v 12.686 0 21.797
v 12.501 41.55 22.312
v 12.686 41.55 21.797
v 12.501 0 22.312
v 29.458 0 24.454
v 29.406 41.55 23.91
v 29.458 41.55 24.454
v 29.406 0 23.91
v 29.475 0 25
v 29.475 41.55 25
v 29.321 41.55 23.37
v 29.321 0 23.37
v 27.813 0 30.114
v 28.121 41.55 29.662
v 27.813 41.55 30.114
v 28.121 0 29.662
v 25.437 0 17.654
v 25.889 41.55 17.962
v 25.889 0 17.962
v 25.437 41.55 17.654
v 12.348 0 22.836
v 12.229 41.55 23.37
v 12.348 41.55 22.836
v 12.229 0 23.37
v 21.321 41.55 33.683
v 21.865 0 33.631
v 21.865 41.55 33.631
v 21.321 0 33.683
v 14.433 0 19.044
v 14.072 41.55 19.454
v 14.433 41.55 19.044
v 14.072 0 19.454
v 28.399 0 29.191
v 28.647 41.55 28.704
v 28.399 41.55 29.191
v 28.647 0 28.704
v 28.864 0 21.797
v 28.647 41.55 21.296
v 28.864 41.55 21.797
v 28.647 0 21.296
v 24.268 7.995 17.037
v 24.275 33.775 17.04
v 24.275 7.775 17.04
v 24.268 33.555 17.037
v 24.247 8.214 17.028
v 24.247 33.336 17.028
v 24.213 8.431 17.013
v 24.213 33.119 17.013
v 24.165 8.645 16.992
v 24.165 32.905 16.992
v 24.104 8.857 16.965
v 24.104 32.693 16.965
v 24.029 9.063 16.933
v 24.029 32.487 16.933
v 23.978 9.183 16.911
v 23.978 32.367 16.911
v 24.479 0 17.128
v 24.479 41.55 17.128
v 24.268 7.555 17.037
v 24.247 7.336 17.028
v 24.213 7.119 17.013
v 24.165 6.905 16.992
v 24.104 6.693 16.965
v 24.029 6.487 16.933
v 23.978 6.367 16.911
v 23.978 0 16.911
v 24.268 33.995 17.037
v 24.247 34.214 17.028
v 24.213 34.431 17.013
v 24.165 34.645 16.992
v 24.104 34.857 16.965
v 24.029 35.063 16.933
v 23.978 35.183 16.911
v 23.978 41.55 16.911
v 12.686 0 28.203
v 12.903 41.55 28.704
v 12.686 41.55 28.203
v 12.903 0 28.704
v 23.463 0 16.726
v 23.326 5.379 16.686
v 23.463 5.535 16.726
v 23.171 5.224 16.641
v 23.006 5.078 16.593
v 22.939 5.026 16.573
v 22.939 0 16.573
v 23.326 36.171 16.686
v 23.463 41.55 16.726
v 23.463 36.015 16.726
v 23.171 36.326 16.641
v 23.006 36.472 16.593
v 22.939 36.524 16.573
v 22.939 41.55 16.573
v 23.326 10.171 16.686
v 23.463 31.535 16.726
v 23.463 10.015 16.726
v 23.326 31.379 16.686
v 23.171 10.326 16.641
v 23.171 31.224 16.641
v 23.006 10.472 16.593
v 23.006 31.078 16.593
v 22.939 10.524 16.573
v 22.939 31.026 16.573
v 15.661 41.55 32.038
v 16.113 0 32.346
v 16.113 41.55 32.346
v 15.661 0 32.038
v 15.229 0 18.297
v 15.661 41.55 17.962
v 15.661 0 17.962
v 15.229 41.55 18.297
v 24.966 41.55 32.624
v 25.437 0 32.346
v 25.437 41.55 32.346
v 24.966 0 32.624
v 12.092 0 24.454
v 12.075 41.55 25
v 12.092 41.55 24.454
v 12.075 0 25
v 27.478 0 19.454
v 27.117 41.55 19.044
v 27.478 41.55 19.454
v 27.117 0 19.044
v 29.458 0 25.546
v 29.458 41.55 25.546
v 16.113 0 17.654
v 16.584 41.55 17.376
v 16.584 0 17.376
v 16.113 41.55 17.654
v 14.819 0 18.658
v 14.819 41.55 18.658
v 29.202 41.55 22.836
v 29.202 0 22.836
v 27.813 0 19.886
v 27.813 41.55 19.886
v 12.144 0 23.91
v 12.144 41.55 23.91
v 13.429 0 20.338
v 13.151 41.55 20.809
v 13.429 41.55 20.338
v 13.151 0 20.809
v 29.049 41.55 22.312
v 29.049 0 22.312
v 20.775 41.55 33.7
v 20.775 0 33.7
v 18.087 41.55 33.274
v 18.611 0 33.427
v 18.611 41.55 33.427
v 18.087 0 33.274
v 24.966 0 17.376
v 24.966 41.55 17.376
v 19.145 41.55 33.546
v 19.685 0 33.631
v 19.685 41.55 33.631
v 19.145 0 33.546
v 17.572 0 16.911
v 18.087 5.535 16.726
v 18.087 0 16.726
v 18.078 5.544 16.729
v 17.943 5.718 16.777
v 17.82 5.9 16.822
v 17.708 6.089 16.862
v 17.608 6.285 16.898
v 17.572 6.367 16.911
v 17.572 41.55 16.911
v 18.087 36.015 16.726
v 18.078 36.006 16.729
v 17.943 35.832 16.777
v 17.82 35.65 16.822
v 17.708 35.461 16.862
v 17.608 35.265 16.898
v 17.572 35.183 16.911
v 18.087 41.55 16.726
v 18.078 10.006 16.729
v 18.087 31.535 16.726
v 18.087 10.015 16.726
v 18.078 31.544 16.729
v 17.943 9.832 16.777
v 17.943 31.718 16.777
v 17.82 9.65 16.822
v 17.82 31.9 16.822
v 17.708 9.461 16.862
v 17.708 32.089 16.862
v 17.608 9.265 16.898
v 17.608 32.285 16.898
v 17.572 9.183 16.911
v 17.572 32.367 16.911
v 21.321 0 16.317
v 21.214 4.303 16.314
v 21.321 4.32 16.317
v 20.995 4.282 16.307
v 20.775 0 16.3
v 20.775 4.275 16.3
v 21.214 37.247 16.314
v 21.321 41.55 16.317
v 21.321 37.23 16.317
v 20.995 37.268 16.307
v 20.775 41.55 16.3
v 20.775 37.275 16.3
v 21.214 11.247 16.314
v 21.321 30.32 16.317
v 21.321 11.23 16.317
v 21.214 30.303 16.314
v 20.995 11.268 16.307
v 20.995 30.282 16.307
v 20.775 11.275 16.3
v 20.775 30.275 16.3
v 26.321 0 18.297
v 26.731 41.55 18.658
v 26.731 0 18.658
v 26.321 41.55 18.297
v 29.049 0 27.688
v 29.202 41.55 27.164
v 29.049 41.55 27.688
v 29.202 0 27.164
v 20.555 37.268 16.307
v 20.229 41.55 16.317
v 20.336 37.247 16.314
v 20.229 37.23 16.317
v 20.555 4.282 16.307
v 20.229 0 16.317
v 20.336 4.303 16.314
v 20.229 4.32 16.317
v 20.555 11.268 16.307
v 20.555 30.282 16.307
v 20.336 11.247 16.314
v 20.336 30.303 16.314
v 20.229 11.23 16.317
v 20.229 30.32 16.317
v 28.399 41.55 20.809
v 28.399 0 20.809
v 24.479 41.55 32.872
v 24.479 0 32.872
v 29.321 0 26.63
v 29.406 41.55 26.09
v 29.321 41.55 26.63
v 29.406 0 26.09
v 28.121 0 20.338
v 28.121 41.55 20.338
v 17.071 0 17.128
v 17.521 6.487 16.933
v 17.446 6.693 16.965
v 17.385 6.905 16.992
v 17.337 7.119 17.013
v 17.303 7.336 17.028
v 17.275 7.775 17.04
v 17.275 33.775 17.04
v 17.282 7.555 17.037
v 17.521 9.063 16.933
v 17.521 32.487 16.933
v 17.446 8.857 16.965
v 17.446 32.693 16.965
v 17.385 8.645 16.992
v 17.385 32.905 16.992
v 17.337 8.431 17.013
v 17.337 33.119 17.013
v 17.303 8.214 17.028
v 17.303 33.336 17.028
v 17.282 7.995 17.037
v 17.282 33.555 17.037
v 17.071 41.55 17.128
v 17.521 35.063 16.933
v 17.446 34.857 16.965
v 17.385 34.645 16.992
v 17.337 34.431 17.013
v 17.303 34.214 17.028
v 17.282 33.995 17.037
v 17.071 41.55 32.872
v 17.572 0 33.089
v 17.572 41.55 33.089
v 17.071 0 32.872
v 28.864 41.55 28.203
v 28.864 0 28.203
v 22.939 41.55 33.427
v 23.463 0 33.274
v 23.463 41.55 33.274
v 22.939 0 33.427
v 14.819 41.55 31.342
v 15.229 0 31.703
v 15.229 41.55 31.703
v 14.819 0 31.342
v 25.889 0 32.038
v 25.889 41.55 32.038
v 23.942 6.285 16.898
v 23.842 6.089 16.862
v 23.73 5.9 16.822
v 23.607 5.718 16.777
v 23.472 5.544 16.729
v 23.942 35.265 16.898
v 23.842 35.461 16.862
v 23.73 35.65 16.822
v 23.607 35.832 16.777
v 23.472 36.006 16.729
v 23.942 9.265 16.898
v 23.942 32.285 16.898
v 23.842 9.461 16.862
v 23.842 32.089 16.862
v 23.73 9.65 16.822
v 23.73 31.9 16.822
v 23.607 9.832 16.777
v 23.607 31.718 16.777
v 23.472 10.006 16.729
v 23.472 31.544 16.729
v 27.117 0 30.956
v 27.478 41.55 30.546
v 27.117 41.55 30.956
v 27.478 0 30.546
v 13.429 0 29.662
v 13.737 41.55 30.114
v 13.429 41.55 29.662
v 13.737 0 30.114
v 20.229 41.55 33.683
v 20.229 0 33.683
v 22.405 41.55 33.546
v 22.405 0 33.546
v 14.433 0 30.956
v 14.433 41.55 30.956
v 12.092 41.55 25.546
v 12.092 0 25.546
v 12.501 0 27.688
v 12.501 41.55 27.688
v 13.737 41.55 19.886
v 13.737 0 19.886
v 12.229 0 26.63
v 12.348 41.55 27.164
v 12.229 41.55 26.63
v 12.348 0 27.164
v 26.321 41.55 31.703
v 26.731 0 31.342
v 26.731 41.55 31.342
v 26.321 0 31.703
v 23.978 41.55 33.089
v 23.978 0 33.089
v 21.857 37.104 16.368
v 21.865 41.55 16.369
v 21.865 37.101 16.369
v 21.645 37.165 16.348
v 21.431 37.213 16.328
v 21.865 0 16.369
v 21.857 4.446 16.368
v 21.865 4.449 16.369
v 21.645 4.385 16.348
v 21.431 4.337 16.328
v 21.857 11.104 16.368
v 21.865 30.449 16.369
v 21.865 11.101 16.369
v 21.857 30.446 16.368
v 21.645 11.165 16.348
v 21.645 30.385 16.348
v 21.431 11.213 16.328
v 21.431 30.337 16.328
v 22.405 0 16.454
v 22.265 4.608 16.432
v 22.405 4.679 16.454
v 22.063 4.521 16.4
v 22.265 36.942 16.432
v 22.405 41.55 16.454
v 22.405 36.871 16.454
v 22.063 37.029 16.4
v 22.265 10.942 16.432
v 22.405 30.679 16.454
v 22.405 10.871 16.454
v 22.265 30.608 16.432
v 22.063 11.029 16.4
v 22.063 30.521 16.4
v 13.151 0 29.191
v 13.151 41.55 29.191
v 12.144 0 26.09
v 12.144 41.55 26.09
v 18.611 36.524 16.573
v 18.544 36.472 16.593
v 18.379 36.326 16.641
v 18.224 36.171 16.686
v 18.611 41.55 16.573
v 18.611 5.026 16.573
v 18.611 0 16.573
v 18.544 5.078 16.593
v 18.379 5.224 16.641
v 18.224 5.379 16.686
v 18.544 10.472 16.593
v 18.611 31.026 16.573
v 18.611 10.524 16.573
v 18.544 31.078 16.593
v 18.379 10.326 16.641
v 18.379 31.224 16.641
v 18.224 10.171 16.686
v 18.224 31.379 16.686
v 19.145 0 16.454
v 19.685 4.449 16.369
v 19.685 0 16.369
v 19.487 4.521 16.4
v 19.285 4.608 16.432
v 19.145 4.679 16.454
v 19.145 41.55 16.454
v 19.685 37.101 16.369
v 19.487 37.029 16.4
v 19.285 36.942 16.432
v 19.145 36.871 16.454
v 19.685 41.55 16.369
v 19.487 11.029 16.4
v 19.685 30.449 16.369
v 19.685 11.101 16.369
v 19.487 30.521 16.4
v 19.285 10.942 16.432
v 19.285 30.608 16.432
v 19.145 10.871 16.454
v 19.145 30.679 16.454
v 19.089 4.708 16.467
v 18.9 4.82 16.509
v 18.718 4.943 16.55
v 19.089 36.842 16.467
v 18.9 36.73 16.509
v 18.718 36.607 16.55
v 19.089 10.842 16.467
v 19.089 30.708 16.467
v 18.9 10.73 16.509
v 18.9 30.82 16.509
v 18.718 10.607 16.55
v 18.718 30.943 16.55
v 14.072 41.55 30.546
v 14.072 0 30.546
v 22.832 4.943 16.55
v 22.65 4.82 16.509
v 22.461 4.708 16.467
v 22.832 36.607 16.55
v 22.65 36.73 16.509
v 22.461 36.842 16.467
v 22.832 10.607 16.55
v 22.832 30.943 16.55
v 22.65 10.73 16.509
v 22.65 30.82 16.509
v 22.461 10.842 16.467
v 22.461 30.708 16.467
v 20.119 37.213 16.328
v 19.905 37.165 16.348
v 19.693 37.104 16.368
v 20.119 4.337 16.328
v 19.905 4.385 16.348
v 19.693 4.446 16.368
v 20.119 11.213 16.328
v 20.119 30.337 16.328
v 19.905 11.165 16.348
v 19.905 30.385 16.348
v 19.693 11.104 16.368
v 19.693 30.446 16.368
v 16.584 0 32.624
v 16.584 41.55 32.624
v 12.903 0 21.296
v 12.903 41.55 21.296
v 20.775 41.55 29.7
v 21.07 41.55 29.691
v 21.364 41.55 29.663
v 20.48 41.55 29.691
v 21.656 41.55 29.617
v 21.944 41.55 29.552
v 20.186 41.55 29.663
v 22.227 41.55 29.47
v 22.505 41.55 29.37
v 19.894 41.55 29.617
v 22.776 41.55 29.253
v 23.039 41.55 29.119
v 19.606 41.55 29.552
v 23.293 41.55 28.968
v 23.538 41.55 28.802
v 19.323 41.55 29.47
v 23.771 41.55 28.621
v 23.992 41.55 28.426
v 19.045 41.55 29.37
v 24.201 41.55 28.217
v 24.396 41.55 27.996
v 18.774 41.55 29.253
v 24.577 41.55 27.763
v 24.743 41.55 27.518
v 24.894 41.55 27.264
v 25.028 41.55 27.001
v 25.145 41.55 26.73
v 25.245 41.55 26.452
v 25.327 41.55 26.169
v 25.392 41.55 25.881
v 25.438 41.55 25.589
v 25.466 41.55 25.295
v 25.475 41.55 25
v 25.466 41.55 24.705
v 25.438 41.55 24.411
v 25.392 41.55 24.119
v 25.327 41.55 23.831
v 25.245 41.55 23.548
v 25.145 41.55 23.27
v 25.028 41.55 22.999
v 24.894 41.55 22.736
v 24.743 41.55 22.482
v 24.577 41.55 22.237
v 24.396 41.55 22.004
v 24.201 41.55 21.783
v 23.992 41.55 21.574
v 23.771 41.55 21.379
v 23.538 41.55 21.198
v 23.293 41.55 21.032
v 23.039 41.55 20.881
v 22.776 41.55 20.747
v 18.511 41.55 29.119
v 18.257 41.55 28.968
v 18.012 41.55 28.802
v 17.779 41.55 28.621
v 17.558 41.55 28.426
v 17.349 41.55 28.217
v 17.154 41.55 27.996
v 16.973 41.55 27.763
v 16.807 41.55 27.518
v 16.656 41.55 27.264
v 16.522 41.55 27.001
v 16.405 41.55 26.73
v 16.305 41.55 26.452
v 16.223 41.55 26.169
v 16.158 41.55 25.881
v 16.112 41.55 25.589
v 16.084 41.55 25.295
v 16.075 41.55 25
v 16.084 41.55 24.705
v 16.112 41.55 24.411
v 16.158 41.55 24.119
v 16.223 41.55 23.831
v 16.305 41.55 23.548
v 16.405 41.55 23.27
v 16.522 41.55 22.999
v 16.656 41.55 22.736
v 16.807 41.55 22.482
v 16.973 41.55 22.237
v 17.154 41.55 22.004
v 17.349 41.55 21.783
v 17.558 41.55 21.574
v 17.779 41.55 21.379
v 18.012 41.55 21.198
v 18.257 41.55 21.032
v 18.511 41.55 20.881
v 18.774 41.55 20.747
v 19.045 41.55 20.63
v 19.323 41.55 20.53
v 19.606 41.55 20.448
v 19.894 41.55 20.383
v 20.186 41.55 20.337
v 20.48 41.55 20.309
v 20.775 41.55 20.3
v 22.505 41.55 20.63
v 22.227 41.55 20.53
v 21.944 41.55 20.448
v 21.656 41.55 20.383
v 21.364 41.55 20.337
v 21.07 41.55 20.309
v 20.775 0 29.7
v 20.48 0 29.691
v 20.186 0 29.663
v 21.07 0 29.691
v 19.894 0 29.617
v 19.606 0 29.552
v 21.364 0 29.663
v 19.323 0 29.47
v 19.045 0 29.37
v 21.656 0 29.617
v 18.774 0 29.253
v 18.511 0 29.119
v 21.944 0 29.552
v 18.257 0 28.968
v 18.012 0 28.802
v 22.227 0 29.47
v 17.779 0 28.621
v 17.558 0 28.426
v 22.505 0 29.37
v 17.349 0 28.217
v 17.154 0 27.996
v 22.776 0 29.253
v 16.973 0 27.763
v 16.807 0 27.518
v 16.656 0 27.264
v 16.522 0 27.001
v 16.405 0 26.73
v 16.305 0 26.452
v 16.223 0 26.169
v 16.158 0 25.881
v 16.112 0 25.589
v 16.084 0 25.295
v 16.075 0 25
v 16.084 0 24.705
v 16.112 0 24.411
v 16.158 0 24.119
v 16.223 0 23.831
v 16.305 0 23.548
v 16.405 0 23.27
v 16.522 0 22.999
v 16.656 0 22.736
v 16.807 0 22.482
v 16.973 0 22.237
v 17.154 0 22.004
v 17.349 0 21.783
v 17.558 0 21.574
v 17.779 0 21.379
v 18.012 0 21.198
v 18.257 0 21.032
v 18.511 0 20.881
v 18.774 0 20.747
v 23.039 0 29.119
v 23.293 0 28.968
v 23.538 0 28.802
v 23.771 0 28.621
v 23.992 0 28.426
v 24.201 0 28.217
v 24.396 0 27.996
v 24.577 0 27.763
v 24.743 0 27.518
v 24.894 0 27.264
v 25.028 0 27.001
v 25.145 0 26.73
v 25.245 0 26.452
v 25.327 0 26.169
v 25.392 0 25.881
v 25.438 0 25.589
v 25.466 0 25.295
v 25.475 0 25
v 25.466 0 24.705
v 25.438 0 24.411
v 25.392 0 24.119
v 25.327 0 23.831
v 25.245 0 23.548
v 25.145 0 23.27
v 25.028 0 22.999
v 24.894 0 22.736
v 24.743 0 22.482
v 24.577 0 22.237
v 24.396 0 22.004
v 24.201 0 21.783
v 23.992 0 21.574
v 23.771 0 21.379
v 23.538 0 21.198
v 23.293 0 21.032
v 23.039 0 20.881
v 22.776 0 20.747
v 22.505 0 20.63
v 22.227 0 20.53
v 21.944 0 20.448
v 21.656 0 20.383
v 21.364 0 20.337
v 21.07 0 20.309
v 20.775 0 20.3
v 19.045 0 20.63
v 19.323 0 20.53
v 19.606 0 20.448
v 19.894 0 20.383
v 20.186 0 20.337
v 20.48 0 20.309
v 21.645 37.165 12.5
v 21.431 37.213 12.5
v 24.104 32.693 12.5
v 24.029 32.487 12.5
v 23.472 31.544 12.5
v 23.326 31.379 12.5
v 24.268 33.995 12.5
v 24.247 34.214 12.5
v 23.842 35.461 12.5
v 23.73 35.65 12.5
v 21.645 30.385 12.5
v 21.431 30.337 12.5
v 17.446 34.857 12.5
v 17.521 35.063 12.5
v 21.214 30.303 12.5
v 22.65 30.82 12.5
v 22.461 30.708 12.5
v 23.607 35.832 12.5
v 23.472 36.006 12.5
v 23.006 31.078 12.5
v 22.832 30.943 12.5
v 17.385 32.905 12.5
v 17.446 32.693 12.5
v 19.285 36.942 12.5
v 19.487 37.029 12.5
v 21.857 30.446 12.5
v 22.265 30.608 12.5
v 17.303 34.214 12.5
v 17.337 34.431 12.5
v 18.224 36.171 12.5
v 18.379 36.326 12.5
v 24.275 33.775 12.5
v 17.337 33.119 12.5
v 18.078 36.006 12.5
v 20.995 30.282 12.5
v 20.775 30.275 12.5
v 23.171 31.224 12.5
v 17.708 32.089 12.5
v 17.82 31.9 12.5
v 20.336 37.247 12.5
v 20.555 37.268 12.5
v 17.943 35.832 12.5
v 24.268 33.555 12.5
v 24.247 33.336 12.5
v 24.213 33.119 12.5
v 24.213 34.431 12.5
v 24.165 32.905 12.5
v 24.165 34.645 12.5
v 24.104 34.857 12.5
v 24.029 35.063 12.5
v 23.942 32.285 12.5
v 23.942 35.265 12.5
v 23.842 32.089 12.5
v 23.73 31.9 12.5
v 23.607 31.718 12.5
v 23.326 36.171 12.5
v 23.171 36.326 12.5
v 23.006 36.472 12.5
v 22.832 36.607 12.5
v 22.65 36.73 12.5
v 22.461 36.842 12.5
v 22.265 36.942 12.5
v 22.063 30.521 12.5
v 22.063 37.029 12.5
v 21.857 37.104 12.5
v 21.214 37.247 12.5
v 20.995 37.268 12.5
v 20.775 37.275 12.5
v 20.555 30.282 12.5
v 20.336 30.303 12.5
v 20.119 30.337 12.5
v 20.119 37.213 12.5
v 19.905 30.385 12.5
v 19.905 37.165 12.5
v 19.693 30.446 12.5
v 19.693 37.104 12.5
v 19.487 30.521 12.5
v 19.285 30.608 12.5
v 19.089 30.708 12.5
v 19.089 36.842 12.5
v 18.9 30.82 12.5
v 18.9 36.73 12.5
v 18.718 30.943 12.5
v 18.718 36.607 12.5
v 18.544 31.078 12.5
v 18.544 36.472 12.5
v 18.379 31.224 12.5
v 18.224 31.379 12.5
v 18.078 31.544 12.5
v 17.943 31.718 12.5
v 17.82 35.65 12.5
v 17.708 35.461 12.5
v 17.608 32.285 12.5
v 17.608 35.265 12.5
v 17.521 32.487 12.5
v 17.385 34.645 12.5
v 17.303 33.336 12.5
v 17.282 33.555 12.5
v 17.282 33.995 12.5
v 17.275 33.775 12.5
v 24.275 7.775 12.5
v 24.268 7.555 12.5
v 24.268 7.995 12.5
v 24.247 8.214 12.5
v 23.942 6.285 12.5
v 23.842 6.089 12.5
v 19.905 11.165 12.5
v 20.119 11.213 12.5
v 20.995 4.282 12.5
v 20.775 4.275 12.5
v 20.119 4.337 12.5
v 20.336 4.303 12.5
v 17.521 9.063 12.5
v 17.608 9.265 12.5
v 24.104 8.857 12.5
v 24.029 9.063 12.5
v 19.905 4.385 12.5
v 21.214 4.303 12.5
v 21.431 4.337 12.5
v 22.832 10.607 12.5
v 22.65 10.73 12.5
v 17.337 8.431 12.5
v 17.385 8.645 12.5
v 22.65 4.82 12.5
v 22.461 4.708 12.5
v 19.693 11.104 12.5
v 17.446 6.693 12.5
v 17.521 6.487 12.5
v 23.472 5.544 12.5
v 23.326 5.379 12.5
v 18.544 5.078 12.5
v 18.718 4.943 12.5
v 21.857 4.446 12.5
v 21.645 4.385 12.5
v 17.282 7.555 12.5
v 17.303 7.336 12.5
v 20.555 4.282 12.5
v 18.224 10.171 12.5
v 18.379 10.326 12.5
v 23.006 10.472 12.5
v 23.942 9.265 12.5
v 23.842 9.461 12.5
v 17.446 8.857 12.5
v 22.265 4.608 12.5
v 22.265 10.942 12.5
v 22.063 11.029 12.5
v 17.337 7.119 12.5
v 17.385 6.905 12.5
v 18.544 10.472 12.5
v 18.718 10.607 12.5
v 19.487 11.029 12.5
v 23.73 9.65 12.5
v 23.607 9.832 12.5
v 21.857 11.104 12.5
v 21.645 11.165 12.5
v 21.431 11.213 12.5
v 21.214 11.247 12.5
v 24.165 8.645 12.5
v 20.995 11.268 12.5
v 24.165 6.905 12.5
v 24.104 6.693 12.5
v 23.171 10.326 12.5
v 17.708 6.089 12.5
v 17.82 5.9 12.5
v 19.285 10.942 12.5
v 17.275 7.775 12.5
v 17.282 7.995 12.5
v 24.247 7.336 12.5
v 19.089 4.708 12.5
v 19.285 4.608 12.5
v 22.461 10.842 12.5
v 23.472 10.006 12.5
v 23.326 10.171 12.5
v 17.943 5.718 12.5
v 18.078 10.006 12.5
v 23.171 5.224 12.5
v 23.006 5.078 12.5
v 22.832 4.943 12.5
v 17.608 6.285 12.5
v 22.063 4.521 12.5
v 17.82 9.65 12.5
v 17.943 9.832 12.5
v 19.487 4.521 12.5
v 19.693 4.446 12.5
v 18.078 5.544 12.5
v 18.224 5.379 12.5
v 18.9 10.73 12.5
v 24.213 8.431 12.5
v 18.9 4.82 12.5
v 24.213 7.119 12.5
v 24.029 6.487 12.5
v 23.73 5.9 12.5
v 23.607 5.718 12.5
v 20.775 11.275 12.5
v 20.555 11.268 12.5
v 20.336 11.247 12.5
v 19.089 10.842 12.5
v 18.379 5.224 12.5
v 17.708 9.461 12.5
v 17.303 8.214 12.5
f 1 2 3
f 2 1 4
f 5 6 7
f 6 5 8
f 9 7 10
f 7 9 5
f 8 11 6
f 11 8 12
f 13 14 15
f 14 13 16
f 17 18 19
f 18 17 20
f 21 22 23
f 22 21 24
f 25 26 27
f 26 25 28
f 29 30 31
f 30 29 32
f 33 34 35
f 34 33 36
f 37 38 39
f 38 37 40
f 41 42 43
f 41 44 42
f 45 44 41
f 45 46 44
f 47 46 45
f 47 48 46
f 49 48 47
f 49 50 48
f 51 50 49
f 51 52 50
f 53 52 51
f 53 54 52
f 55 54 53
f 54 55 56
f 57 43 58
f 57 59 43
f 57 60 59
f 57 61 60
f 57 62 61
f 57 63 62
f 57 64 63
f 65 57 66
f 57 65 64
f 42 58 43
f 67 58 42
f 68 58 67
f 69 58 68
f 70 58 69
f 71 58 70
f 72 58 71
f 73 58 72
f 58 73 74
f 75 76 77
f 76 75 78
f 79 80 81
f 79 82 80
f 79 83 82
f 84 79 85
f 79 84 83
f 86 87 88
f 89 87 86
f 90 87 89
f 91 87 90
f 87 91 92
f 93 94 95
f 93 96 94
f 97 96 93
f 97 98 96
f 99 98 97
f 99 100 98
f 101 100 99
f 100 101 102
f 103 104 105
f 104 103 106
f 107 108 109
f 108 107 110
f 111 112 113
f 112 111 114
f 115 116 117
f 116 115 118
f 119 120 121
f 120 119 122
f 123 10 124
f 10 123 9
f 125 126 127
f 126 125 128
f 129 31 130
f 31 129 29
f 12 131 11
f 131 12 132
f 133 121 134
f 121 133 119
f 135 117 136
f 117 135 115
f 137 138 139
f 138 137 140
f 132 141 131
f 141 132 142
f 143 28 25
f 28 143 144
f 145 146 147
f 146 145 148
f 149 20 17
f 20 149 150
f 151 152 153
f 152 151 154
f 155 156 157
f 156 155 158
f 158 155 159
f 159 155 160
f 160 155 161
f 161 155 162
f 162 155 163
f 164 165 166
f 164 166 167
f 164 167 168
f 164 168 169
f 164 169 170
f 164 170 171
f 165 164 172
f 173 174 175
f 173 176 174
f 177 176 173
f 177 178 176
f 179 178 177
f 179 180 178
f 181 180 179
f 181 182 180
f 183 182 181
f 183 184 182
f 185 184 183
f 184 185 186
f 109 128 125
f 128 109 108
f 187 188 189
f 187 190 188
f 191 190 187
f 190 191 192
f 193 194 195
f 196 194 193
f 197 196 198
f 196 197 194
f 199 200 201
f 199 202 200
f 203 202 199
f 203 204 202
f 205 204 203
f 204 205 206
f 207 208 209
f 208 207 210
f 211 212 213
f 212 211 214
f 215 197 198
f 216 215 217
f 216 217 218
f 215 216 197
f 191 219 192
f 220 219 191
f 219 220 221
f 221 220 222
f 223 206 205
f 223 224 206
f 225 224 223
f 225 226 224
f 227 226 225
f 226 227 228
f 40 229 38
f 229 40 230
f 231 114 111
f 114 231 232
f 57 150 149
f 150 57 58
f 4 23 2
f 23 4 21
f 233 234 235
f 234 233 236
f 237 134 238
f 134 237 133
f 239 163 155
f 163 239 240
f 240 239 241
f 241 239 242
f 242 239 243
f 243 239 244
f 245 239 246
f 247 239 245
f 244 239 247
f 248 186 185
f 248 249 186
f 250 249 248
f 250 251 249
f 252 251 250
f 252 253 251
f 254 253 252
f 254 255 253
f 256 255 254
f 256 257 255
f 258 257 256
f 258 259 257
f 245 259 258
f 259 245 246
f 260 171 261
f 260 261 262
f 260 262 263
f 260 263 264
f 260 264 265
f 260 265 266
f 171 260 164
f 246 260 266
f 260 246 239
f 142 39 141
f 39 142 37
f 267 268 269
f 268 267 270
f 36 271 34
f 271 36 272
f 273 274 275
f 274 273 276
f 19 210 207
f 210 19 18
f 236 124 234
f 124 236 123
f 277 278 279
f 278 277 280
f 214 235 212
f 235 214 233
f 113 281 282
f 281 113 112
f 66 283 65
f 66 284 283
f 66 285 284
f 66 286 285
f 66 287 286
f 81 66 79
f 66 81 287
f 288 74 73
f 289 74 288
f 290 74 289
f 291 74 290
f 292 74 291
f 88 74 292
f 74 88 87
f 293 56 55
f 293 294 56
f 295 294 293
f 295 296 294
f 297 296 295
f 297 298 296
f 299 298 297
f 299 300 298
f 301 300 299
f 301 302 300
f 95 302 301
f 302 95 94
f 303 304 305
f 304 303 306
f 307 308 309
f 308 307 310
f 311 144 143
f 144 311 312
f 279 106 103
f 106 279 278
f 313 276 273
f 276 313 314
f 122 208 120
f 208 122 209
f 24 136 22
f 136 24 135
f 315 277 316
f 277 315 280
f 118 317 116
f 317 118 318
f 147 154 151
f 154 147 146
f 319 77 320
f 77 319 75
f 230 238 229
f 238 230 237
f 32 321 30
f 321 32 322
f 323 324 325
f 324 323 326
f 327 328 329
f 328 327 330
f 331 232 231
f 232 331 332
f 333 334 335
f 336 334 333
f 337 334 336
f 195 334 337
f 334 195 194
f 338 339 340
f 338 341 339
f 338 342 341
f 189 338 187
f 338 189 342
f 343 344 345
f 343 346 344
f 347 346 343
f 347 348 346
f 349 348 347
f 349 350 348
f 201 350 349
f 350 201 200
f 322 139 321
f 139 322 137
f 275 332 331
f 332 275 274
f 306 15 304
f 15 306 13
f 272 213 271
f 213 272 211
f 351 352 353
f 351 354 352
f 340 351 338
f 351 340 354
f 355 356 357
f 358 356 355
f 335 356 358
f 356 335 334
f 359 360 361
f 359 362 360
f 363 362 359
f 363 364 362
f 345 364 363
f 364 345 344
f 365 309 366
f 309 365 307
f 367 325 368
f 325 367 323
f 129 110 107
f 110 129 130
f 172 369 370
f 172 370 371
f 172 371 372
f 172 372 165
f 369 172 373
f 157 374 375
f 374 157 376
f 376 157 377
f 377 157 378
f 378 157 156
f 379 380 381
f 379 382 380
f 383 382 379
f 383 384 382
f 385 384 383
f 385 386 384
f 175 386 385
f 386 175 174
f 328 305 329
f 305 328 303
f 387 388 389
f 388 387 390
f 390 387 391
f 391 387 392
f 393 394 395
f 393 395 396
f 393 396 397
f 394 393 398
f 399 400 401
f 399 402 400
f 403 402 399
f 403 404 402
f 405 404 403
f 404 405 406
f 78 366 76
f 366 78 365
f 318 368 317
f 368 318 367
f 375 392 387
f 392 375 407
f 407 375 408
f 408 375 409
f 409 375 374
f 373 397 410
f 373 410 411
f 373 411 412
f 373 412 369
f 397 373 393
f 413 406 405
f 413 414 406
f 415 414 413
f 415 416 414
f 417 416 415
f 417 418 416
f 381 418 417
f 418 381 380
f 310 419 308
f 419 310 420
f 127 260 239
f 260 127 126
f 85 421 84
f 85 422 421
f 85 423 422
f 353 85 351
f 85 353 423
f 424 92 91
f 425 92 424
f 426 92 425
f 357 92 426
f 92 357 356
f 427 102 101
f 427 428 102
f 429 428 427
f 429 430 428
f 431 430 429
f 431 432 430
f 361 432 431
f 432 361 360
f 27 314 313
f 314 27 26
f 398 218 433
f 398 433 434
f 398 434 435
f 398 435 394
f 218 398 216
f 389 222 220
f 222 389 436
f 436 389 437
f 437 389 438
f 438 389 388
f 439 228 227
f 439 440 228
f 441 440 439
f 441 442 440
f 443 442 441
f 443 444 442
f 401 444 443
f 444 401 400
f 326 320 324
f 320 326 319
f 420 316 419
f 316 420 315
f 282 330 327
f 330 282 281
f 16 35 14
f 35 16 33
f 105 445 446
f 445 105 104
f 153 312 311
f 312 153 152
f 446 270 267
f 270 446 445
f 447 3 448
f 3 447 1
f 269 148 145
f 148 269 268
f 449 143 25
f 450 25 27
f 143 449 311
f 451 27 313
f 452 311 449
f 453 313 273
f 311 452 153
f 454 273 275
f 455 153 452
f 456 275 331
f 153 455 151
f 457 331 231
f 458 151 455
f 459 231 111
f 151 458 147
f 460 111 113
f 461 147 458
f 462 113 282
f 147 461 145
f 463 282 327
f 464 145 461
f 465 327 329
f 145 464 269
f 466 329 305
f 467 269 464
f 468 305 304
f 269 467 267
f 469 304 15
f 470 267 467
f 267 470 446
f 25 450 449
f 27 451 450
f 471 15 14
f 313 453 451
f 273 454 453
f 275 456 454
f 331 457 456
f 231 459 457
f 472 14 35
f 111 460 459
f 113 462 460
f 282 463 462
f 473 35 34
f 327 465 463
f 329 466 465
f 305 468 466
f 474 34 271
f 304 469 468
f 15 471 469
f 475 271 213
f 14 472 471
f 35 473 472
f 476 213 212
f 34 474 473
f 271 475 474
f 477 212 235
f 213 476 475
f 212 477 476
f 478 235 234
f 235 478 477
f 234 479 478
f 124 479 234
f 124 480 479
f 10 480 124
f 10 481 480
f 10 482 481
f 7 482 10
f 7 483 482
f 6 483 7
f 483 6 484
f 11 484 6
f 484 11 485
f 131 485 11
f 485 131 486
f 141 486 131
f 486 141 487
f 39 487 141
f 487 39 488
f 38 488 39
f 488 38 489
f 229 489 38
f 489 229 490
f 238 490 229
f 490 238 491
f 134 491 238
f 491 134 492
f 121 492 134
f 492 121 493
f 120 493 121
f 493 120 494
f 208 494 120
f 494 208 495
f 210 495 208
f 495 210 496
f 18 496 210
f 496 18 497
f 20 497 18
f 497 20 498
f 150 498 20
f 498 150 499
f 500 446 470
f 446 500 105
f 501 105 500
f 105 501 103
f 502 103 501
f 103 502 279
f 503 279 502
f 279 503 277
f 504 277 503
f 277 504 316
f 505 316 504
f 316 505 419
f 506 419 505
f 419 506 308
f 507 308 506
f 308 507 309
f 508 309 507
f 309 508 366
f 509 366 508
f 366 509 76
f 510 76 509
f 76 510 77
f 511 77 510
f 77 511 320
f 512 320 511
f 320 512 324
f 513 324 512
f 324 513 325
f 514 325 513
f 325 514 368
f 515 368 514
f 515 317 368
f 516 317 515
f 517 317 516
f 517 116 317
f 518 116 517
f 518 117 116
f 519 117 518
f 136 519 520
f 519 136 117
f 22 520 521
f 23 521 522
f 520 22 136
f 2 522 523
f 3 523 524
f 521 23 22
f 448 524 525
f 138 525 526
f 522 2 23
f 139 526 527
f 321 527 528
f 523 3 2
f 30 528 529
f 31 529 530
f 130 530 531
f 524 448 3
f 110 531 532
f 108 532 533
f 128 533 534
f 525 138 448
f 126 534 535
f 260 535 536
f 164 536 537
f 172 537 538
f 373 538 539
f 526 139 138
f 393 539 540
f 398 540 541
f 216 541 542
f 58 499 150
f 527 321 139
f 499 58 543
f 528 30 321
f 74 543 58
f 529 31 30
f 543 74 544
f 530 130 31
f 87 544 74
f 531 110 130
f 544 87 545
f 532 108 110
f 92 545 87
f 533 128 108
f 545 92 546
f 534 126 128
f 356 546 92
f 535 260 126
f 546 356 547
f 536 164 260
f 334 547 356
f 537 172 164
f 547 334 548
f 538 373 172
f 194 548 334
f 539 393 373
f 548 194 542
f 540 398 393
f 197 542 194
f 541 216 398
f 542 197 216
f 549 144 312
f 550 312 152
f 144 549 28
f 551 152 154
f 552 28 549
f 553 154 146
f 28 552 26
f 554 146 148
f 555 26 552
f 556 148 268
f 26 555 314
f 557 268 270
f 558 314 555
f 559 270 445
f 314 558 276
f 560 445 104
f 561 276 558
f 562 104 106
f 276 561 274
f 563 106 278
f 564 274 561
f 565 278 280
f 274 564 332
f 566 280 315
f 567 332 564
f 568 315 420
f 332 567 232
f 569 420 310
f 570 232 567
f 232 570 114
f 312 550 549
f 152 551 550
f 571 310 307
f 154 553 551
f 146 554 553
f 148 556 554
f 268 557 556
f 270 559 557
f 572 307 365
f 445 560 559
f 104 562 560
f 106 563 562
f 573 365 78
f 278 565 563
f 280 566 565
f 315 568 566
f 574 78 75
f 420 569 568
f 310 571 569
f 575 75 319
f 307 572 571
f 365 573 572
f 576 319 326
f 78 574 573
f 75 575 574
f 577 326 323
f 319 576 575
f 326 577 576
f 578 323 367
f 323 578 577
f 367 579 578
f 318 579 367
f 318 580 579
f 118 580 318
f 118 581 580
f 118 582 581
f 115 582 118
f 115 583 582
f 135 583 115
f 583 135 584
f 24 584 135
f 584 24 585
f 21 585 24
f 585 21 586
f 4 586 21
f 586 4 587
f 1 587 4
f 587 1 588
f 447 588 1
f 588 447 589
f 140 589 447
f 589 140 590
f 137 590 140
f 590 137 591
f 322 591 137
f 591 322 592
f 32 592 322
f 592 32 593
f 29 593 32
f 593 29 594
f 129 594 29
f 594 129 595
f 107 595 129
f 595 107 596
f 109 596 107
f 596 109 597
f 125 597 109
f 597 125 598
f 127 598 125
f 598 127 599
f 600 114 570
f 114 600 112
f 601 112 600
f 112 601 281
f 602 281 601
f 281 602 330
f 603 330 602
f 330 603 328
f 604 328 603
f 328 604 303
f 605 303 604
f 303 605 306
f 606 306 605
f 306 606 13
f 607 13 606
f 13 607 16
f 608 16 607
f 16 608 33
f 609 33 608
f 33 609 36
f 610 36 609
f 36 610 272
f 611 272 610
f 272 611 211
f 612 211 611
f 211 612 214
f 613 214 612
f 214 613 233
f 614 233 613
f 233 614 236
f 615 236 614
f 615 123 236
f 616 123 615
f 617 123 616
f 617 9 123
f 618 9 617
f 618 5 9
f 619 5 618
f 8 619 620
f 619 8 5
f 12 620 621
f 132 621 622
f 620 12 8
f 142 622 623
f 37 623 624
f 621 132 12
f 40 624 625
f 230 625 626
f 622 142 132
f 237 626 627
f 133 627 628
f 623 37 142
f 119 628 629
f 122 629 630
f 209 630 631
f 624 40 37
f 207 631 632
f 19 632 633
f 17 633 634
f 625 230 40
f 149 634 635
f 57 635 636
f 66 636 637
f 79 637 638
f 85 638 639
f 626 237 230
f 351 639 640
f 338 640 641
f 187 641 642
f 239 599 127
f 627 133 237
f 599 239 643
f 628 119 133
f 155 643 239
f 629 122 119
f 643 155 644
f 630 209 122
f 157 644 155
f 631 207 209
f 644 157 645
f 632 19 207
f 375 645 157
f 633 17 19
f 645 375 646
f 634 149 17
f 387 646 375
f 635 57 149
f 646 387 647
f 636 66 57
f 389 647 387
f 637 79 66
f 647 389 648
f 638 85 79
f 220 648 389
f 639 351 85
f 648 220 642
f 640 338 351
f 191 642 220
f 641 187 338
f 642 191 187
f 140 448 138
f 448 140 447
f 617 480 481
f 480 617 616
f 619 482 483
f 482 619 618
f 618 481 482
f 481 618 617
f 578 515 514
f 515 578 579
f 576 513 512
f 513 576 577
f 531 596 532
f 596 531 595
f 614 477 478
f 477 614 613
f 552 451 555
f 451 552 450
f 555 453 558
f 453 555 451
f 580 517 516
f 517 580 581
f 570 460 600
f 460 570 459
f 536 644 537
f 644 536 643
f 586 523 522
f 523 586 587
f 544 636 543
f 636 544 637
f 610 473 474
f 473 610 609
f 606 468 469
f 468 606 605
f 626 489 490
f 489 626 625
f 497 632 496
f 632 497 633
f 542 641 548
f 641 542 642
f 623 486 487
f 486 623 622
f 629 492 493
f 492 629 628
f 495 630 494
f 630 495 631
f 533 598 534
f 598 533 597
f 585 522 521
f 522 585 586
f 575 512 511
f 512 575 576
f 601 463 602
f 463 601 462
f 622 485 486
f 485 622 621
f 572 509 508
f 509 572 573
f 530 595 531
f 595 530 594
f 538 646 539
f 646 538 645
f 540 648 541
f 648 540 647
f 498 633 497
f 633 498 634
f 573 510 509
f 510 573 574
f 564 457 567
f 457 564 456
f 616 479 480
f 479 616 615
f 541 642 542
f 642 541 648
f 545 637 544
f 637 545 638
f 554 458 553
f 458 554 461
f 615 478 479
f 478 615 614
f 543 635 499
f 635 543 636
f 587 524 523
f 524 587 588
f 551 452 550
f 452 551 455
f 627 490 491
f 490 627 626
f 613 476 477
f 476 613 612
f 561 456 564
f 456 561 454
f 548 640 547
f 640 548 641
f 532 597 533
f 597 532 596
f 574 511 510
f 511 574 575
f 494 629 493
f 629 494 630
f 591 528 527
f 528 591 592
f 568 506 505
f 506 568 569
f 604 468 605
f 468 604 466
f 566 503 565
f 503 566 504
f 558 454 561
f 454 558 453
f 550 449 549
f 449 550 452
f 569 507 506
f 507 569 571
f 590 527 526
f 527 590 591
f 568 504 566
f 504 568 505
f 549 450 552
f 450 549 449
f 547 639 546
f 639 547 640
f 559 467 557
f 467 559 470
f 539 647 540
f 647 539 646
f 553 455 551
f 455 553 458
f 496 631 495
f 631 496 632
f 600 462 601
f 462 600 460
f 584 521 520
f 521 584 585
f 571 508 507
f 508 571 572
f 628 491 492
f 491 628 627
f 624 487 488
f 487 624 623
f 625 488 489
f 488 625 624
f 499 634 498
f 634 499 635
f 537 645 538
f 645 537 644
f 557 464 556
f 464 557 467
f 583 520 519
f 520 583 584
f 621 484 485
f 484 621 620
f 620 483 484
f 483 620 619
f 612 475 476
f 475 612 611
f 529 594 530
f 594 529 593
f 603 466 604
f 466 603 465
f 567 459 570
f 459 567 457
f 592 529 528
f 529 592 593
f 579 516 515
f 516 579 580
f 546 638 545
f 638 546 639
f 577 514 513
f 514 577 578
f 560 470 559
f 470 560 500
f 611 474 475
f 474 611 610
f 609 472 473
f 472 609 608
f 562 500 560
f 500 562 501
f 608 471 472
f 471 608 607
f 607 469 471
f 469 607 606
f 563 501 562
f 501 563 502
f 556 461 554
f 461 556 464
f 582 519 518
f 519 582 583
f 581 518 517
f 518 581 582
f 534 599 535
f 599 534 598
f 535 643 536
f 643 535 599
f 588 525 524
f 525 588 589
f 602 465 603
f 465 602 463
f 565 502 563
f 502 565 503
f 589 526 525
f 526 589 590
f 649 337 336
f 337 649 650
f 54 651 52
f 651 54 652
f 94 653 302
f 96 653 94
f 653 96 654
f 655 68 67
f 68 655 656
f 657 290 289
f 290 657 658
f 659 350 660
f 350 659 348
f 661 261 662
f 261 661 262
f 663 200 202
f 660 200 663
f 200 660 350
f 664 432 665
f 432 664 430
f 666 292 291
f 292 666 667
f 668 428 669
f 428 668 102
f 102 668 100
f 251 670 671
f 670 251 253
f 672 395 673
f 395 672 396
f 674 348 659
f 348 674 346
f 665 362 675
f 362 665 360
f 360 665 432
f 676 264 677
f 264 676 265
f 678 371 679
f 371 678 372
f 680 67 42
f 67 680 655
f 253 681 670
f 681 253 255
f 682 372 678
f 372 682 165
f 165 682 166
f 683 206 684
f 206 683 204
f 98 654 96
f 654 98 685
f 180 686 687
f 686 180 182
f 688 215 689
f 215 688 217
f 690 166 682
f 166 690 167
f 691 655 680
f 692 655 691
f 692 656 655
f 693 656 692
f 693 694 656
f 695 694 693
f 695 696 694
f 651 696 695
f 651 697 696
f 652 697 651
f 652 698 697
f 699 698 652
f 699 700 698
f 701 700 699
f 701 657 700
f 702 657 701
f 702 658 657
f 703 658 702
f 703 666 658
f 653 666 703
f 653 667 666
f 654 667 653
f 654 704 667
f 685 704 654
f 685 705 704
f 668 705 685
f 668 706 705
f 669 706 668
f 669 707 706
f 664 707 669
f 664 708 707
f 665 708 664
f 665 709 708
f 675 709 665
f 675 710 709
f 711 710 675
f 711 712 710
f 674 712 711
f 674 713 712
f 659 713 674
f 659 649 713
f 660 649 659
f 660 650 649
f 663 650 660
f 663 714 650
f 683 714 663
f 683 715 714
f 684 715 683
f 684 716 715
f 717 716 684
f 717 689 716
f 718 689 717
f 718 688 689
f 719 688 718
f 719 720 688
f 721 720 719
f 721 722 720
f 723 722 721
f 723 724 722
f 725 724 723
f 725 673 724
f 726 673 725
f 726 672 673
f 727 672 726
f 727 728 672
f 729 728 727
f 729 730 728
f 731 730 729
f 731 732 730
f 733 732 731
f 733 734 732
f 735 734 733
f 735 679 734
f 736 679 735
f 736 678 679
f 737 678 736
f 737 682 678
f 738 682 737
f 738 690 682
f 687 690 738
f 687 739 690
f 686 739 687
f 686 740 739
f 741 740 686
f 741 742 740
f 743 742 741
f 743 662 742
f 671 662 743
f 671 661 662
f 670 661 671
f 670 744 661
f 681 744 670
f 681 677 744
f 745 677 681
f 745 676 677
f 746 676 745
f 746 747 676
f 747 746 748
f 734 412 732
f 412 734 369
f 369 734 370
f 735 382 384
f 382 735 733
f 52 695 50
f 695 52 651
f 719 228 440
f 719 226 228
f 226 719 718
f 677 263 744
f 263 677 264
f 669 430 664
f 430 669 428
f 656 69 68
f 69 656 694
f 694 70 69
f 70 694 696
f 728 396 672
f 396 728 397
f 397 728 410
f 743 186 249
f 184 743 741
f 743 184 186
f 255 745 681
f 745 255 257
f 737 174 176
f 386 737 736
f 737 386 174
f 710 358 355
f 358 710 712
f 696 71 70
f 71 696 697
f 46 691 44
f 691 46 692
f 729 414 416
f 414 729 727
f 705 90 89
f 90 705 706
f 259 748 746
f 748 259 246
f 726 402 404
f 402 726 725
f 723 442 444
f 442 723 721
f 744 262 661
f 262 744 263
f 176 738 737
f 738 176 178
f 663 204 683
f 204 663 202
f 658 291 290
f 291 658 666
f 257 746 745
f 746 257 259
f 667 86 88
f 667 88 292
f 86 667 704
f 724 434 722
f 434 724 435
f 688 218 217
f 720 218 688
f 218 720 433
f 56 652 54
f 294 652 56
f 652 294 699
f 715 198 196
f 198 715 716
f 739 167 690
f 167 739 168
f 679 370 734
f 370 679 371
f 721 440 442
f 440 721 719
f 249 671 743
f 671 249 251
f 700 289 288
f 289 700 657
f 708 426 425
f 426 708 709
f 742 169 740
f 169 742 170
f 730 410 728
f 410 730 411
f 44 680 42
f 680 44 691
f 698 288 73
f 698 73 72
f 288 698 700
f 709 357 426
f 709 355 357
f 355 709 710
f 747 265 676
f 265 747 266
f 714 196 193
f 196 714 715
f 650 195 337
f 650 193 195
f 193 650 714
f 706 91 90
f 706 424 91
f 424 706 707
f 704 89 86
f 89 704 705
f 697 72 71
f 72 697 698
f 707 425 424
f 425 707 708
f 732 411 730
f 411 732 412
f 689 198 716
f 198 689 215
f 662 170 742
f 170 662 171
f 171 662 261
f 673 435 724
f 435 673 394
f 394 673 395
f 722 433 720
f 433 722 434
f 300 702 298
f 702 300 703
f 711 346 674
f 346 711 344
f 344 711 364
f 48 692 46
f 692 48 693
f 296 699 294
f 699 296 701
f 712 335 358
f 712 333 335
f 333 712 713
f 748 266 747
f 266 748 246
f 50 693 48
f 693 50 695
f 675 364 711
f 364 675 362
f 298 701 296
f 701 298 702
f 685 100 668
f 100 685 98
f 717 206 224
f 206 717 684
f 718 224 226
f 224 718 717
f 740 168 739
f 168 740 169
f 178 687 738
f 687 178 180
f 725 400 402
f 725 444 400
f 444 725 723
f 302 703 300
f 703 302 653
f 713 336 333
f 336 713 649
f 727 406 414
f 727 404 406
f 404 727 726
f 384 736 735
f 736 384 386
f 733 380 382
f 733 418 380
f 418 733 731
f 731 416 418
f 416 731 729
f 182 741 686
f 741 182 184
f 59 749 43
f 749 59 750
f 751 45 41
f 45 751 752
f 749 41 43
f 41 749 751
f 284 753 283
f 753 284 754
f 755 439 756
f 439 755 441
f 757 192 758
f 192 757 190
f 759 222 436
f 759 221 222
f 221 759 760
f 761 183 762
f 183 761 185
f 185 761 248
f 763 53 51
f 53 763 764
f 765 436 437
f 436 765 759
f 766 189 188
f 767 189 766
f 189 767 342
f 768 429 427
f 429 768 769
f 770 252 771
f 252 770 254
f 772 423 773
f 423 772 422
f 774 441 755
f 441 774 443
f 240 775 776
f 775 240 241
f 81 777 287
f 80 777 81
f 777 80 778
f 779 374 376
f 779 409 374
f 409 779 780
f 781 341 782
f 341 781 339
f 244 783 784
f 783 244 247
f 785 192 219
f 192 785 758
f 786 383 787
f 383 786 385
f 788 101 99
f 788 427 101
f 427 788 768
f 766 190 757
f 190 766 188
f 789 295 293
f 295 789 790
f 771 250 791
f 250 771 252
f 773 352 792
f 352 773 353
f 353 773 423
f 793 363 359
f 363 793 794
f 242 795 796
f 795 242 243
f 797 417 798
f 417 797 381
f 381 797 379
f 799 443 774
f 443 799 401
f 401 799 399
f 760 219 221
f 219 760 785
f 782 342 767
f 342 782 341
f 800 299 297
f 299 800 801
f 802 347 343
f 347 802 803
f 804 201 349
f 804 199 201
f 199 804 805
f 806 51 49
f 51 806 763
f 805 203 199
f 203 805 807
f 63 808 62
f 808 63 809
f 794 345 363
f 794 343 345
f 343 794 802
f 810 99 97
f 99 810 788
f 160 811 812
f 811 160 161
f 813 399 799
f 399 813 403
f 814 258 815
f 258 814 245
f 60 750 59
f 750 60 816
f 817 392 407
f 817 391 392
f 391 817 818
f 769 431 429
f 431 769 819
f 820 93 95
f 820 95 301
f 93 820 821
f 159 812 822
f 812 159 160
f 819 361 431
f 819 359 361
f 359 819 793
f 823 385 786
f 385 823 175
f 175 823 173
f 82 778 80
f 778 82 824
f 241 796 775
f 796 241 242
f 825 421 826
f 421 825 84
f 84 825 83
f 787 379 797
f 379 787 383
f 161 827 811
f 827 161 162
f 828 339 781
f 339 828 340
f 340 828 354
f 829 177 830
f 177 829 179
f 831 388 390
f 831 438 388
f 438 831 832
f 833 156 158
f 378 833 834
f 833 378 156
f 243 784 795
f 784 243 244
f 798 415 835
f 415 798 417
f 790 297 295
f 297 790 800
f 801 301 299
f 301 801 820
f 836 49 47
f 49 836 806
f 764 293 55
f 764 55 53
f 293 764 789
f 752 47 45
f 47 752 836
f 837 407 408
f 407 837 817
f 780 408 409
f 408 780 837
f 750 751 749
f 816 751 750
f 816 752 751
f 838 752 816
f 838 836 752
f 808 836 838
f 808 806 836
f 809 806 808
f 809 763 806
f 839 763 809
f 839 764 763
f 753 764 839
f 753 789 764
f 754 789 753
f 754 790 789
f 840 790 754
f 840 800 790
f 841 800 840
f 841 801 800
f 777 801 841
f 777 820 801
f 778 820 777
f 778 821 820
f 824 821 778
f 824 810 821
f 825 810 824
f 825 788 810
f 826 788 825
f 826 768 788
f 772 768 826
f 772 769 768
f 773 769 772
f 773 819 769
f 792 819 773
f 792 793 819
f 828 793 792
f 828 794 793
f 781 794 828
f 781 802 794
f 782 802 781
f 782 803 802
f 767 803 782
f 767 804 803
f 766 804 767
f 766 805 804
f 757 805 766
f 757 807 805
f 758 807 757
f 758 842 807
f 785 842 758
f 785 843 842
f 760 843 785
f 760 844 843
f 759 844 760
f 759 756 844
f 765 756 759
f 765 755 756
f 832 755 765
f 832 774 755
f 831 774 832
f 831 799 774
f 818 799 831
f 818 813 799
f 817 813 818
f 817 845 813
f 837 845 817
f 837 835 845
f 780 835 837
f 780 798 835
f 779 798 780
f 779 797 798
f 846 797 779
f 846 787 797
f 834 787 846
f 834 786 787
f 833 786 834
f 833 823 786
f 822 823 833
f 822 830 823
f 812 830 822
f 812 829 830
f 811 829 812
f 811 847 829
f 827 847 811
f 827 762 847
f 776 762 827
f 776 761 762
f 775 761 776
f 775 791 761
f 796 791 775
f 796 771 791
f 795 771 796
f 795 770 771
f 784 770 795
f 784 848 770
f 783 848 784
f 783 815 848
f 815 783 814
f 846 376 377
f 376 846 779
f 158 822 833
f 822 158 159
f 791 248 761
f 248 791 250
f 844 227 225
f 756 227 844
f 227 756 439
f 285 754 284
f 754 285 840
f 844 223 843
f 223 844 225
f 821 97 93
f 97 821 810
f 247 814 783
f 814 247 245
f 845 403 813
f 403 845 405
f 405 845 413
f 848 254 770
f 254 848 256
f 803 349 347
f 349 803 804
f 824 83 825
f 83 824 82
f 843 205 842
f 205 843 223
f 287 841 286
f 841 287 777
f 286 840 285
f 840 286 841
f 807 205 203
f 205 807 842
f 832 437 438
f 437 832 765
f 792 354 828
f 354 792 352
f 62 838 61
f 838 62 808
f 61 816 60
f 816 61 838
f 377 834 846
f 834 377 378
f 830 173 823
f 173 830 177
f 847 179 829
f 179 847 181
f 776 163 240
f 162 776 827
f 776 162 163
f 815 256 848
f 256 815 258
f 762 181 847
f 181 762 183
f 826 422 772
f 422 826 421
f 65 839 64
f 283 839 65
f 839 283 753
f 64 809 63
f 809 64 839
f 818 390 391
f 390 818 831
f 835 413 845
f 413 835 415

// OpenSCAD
res = 100;
aa=13.2;
rr=1; //raio parafuso fixação offset
sss=12;
ere = 6;

difference(){
    translate([0,0,0]){
        //cube([37.55+4,37.55+4,12.5]);
        translate([(37.55+4)/2,0,2*12.5])rotate([-90,0,0])cylinder(37.55+4,9.1/2+0.15+4,9.1/2+0.15+4,$fn=res);
    }
    //#translate([2-0.175,2-0.175,0])cube([37.55+2*0.175,37.55+2*0.175,1]);    
    //#translate([(37.55+4)/2,(37.55+4)/2,-17])cylinder(5+9+5+12,6.4/2,6.4/2,$fn=res);
    #translate([(37.55+4)/2,0,2*12.5])rotate([-90,0,0])cylinder(37.55+4,9.1/2+0.15,9.1/2+0.15,$fn=res);
    /*#translate([3+(37.55+4-36)/2,3,12.5]){
        #translate([-(3+(37.55+4-36)/2),-3,0])
        #translate([(37.55+4)/2,(37.55+4)/2,0])
        #translate([0,0,-6.3])
        #cylinder(6.3,10.1/2+0.25,10.1/2+0.25,$fn=res);
    }*/
    /*
    #translate([0,13,0])
    #translate([3+(37.55+4-36)/2,3,12.5])
    #translate([-(3+(37.55+4-36)/2),-3,0])
    #translate([(37.55+4)/2,(37.55+4)/2,0])
    #translate([0,0,-4])
    #cylinder(4,7/2+0.15,7/2+0.15,$fn=res);
    #translate([0,-13,0])
    #translate([3+(37.55+4-36)/2,3,12.5])
    #translate([-(3+(37.55+4-36)/2),-3,0])
    #translate([(37.55+4)/2,(37.55+4)/2,0])
    #translate([0,0,-4])
    #cylinder(4,7/2+0.15,7/2+0.15,$fn=res);
    */
}
translate([0,13,0])
translate([3+(37.55+4-36)/2,3,12.5])
translate([-(3+(37.55+4-36)/2),-3,0])
translate([(37.55+4)/2,(37.55+4)/2,0])
cylinder(6.3,7/2,7/2,$fn=res);
translate([0,-13,0])
translate([3+(37.55+4-36)/2,3,12.5])
translate([-(3+(37.55+4-36)/2),-3,0])
translate([(37.55+4)/2,(37.55+4)/2,0])
cylinder(6.3,7/2,7/2,$fn=res);


//cylinder(6.3+40,7/2+0.15,7/2+0.15,$fn=res);

// O tamanho do parafuso:
//15.4-5.9+8.8
//15.4-5.9=9.5
// tem que ser maior que 9.5
